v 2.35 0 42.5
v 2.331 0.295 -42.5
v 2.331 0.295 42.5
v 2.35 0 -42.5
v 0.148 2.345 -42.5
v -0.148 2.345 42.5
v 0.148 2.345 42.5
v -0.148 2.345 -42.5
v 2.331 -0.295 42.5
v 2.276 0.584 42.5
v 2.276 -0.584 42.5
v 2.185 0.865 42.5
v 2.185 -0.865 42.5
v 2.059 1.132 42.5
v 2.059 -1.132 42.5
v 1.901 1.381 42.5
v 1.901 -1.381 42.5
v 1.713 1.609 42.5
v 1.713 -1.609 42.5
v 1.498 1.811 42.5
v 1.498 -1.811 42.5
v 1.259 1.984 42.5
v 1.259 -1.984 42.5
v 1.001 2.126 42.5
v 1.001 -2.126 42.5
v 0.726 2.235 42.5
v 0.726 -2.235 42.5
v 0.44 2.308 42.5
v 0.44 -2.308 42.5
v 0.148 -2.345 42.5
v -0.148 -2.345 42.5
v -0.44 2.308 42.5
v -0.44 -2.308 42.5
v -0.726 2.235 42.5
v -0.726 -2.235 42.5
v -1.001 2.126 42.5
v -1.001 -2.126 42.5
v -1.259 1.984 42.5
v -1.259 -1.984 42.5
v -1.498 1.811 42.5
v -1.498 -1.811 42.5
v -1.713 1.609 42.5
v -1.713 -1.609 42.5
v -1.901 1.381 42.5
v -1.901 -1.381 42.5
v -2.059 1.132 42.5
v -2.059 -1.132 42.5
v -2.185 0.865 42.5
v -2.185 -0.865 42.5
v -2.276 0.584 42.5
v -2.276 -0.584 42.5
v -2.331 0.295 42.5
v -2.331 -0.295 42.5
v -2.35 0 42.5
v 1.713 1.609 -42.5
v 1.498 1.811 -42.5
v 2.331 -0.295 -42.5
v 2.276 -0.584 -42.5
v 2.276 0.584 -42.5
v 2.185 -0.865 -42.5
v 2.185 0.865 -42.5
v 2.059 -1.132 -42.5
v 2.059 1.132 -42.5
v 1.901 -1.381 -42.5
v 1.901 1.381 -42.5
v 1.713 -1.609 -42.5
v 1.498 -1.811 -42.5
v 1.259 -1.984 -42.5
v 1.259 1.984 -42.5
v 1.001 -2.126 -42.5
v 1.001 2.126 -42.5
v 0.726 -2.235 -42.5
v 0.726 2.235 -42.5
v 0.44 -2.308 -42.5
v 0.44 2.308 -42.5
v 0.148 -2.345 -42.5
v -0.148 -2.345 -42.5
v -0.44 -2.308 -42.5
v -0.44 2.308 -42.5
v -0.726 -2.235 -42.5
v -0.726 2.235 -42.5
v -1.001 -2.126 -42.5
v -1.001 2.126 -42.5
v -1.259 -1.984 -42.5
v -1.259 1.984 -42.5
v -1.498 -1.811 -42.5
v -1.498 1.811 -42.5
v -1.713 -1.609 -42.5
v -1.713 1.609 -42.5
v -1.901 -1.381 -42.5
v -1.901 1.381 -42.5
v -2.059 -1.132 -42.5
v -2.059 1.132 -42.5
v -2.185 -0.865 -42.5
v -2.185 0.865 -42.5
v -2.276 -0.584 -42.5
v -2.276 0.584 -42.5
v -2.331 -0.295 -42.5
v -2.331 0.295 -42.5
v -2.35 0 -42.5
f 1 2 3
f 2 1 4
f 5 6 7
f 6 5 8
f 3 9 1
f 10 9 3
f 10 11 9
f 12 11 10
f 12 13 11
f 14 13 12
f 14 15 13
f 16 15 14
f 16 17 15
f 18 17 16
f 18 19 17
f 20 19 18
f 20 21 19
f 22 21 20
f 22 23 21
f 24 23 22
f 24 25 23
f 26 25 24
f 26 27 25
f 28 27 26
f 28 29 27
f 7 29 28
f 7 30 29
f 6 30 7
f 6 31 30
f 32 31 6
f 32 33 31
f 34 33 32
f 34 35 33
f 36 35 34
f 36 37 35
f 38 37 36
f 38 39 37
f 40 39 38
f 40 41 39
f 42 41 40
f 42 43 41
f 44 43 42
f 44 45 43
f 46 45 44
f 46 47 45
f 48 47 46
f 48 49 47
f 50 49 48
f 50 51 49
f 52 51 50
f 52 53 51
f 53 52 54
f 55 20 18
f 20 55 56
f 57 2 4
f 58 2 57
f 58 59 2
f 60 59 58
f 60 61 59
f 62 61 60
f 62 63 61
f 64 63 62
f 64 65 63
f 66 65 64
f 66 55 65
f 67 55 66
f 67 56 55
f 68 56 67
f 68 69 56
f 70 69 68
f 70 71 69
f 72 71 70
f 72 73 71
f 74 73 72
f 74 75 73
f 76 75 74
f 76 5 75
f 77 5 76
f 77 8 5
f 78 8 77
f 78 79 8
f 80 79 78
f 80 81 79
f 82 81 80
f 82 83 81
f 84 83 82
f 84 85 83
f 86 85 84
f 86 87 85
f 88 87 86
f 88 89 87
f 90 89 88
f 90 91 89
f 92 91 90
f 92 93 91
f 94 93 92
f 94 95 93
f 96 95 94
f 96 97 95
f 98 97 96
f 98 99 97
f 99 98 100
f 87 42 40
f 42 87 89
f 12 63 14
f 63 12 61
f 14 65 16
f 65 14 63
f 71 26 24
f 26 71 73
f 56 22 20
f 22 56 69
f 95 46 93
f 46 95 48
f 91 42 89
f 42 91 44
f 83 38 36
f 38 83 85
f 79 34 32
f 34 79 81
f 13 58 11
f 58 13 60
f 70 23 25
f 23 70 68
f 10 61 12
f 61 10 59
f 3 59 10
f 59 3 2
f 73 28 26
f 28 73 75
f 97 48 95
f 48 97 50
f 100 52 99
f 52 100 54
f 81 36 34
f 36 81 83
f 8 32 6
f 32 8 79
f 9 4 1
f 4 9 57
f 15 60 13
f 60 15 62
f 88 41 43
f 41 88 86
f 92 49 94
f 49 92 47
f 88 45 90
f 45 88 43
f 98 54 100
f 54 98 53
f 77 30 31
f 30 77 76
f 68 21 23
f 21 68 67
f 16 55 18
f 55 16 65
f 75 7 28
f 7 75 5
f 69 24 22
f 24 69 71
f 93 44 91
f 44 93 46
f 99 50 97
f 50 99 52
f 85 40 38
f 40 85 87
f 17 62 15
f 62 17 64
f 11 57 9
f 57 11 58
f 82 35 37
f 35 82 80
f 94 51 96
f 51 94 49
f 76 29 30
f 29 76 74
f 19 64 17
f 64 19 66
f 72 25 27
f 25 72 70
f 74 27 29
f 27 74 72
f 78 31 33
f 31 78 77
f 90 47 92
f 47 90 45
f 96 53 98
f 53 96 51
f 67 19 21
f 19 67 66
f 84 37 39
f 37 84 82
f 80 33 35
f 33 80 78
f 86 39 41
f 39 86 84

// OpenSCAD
$fn = 50;


difference() {
	union() {
		translate(v = [0, 0, -42.5000000000]) {
			cylinder(h = 85, r = 2.3500000000);
		}
	}
	union() {
		translate(v = [0, 0, -100.0000000000]) {
			cylinder(h = 200, r = 0);
		}
	}
}
